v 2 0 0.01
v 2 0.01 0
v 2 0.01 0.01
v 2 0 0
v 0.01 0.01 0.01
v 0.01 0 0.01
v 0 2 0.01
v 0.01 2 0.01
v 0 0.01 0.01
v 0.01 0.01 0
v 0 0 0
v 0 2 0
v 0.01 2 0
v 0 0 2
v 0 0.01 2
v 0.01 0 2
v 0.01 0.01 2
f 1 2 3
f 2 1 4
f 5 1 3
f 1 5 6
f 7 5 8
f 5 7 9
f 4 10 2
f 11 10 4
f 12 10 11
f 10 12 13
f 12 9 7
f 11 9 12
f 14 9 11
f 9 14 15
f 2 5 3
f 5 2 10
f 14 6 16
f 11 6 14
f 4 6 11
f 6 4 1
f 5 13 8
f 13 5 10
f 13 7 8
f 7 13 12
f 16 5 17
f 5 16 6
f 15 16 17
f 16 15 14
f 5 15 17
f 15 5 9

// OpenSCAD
length = 2;
dummy = 0.01;
cube([length,dummy, dummy]);
cube([dummy, length, dummy]);
cube([dummy, dummy, length]);
